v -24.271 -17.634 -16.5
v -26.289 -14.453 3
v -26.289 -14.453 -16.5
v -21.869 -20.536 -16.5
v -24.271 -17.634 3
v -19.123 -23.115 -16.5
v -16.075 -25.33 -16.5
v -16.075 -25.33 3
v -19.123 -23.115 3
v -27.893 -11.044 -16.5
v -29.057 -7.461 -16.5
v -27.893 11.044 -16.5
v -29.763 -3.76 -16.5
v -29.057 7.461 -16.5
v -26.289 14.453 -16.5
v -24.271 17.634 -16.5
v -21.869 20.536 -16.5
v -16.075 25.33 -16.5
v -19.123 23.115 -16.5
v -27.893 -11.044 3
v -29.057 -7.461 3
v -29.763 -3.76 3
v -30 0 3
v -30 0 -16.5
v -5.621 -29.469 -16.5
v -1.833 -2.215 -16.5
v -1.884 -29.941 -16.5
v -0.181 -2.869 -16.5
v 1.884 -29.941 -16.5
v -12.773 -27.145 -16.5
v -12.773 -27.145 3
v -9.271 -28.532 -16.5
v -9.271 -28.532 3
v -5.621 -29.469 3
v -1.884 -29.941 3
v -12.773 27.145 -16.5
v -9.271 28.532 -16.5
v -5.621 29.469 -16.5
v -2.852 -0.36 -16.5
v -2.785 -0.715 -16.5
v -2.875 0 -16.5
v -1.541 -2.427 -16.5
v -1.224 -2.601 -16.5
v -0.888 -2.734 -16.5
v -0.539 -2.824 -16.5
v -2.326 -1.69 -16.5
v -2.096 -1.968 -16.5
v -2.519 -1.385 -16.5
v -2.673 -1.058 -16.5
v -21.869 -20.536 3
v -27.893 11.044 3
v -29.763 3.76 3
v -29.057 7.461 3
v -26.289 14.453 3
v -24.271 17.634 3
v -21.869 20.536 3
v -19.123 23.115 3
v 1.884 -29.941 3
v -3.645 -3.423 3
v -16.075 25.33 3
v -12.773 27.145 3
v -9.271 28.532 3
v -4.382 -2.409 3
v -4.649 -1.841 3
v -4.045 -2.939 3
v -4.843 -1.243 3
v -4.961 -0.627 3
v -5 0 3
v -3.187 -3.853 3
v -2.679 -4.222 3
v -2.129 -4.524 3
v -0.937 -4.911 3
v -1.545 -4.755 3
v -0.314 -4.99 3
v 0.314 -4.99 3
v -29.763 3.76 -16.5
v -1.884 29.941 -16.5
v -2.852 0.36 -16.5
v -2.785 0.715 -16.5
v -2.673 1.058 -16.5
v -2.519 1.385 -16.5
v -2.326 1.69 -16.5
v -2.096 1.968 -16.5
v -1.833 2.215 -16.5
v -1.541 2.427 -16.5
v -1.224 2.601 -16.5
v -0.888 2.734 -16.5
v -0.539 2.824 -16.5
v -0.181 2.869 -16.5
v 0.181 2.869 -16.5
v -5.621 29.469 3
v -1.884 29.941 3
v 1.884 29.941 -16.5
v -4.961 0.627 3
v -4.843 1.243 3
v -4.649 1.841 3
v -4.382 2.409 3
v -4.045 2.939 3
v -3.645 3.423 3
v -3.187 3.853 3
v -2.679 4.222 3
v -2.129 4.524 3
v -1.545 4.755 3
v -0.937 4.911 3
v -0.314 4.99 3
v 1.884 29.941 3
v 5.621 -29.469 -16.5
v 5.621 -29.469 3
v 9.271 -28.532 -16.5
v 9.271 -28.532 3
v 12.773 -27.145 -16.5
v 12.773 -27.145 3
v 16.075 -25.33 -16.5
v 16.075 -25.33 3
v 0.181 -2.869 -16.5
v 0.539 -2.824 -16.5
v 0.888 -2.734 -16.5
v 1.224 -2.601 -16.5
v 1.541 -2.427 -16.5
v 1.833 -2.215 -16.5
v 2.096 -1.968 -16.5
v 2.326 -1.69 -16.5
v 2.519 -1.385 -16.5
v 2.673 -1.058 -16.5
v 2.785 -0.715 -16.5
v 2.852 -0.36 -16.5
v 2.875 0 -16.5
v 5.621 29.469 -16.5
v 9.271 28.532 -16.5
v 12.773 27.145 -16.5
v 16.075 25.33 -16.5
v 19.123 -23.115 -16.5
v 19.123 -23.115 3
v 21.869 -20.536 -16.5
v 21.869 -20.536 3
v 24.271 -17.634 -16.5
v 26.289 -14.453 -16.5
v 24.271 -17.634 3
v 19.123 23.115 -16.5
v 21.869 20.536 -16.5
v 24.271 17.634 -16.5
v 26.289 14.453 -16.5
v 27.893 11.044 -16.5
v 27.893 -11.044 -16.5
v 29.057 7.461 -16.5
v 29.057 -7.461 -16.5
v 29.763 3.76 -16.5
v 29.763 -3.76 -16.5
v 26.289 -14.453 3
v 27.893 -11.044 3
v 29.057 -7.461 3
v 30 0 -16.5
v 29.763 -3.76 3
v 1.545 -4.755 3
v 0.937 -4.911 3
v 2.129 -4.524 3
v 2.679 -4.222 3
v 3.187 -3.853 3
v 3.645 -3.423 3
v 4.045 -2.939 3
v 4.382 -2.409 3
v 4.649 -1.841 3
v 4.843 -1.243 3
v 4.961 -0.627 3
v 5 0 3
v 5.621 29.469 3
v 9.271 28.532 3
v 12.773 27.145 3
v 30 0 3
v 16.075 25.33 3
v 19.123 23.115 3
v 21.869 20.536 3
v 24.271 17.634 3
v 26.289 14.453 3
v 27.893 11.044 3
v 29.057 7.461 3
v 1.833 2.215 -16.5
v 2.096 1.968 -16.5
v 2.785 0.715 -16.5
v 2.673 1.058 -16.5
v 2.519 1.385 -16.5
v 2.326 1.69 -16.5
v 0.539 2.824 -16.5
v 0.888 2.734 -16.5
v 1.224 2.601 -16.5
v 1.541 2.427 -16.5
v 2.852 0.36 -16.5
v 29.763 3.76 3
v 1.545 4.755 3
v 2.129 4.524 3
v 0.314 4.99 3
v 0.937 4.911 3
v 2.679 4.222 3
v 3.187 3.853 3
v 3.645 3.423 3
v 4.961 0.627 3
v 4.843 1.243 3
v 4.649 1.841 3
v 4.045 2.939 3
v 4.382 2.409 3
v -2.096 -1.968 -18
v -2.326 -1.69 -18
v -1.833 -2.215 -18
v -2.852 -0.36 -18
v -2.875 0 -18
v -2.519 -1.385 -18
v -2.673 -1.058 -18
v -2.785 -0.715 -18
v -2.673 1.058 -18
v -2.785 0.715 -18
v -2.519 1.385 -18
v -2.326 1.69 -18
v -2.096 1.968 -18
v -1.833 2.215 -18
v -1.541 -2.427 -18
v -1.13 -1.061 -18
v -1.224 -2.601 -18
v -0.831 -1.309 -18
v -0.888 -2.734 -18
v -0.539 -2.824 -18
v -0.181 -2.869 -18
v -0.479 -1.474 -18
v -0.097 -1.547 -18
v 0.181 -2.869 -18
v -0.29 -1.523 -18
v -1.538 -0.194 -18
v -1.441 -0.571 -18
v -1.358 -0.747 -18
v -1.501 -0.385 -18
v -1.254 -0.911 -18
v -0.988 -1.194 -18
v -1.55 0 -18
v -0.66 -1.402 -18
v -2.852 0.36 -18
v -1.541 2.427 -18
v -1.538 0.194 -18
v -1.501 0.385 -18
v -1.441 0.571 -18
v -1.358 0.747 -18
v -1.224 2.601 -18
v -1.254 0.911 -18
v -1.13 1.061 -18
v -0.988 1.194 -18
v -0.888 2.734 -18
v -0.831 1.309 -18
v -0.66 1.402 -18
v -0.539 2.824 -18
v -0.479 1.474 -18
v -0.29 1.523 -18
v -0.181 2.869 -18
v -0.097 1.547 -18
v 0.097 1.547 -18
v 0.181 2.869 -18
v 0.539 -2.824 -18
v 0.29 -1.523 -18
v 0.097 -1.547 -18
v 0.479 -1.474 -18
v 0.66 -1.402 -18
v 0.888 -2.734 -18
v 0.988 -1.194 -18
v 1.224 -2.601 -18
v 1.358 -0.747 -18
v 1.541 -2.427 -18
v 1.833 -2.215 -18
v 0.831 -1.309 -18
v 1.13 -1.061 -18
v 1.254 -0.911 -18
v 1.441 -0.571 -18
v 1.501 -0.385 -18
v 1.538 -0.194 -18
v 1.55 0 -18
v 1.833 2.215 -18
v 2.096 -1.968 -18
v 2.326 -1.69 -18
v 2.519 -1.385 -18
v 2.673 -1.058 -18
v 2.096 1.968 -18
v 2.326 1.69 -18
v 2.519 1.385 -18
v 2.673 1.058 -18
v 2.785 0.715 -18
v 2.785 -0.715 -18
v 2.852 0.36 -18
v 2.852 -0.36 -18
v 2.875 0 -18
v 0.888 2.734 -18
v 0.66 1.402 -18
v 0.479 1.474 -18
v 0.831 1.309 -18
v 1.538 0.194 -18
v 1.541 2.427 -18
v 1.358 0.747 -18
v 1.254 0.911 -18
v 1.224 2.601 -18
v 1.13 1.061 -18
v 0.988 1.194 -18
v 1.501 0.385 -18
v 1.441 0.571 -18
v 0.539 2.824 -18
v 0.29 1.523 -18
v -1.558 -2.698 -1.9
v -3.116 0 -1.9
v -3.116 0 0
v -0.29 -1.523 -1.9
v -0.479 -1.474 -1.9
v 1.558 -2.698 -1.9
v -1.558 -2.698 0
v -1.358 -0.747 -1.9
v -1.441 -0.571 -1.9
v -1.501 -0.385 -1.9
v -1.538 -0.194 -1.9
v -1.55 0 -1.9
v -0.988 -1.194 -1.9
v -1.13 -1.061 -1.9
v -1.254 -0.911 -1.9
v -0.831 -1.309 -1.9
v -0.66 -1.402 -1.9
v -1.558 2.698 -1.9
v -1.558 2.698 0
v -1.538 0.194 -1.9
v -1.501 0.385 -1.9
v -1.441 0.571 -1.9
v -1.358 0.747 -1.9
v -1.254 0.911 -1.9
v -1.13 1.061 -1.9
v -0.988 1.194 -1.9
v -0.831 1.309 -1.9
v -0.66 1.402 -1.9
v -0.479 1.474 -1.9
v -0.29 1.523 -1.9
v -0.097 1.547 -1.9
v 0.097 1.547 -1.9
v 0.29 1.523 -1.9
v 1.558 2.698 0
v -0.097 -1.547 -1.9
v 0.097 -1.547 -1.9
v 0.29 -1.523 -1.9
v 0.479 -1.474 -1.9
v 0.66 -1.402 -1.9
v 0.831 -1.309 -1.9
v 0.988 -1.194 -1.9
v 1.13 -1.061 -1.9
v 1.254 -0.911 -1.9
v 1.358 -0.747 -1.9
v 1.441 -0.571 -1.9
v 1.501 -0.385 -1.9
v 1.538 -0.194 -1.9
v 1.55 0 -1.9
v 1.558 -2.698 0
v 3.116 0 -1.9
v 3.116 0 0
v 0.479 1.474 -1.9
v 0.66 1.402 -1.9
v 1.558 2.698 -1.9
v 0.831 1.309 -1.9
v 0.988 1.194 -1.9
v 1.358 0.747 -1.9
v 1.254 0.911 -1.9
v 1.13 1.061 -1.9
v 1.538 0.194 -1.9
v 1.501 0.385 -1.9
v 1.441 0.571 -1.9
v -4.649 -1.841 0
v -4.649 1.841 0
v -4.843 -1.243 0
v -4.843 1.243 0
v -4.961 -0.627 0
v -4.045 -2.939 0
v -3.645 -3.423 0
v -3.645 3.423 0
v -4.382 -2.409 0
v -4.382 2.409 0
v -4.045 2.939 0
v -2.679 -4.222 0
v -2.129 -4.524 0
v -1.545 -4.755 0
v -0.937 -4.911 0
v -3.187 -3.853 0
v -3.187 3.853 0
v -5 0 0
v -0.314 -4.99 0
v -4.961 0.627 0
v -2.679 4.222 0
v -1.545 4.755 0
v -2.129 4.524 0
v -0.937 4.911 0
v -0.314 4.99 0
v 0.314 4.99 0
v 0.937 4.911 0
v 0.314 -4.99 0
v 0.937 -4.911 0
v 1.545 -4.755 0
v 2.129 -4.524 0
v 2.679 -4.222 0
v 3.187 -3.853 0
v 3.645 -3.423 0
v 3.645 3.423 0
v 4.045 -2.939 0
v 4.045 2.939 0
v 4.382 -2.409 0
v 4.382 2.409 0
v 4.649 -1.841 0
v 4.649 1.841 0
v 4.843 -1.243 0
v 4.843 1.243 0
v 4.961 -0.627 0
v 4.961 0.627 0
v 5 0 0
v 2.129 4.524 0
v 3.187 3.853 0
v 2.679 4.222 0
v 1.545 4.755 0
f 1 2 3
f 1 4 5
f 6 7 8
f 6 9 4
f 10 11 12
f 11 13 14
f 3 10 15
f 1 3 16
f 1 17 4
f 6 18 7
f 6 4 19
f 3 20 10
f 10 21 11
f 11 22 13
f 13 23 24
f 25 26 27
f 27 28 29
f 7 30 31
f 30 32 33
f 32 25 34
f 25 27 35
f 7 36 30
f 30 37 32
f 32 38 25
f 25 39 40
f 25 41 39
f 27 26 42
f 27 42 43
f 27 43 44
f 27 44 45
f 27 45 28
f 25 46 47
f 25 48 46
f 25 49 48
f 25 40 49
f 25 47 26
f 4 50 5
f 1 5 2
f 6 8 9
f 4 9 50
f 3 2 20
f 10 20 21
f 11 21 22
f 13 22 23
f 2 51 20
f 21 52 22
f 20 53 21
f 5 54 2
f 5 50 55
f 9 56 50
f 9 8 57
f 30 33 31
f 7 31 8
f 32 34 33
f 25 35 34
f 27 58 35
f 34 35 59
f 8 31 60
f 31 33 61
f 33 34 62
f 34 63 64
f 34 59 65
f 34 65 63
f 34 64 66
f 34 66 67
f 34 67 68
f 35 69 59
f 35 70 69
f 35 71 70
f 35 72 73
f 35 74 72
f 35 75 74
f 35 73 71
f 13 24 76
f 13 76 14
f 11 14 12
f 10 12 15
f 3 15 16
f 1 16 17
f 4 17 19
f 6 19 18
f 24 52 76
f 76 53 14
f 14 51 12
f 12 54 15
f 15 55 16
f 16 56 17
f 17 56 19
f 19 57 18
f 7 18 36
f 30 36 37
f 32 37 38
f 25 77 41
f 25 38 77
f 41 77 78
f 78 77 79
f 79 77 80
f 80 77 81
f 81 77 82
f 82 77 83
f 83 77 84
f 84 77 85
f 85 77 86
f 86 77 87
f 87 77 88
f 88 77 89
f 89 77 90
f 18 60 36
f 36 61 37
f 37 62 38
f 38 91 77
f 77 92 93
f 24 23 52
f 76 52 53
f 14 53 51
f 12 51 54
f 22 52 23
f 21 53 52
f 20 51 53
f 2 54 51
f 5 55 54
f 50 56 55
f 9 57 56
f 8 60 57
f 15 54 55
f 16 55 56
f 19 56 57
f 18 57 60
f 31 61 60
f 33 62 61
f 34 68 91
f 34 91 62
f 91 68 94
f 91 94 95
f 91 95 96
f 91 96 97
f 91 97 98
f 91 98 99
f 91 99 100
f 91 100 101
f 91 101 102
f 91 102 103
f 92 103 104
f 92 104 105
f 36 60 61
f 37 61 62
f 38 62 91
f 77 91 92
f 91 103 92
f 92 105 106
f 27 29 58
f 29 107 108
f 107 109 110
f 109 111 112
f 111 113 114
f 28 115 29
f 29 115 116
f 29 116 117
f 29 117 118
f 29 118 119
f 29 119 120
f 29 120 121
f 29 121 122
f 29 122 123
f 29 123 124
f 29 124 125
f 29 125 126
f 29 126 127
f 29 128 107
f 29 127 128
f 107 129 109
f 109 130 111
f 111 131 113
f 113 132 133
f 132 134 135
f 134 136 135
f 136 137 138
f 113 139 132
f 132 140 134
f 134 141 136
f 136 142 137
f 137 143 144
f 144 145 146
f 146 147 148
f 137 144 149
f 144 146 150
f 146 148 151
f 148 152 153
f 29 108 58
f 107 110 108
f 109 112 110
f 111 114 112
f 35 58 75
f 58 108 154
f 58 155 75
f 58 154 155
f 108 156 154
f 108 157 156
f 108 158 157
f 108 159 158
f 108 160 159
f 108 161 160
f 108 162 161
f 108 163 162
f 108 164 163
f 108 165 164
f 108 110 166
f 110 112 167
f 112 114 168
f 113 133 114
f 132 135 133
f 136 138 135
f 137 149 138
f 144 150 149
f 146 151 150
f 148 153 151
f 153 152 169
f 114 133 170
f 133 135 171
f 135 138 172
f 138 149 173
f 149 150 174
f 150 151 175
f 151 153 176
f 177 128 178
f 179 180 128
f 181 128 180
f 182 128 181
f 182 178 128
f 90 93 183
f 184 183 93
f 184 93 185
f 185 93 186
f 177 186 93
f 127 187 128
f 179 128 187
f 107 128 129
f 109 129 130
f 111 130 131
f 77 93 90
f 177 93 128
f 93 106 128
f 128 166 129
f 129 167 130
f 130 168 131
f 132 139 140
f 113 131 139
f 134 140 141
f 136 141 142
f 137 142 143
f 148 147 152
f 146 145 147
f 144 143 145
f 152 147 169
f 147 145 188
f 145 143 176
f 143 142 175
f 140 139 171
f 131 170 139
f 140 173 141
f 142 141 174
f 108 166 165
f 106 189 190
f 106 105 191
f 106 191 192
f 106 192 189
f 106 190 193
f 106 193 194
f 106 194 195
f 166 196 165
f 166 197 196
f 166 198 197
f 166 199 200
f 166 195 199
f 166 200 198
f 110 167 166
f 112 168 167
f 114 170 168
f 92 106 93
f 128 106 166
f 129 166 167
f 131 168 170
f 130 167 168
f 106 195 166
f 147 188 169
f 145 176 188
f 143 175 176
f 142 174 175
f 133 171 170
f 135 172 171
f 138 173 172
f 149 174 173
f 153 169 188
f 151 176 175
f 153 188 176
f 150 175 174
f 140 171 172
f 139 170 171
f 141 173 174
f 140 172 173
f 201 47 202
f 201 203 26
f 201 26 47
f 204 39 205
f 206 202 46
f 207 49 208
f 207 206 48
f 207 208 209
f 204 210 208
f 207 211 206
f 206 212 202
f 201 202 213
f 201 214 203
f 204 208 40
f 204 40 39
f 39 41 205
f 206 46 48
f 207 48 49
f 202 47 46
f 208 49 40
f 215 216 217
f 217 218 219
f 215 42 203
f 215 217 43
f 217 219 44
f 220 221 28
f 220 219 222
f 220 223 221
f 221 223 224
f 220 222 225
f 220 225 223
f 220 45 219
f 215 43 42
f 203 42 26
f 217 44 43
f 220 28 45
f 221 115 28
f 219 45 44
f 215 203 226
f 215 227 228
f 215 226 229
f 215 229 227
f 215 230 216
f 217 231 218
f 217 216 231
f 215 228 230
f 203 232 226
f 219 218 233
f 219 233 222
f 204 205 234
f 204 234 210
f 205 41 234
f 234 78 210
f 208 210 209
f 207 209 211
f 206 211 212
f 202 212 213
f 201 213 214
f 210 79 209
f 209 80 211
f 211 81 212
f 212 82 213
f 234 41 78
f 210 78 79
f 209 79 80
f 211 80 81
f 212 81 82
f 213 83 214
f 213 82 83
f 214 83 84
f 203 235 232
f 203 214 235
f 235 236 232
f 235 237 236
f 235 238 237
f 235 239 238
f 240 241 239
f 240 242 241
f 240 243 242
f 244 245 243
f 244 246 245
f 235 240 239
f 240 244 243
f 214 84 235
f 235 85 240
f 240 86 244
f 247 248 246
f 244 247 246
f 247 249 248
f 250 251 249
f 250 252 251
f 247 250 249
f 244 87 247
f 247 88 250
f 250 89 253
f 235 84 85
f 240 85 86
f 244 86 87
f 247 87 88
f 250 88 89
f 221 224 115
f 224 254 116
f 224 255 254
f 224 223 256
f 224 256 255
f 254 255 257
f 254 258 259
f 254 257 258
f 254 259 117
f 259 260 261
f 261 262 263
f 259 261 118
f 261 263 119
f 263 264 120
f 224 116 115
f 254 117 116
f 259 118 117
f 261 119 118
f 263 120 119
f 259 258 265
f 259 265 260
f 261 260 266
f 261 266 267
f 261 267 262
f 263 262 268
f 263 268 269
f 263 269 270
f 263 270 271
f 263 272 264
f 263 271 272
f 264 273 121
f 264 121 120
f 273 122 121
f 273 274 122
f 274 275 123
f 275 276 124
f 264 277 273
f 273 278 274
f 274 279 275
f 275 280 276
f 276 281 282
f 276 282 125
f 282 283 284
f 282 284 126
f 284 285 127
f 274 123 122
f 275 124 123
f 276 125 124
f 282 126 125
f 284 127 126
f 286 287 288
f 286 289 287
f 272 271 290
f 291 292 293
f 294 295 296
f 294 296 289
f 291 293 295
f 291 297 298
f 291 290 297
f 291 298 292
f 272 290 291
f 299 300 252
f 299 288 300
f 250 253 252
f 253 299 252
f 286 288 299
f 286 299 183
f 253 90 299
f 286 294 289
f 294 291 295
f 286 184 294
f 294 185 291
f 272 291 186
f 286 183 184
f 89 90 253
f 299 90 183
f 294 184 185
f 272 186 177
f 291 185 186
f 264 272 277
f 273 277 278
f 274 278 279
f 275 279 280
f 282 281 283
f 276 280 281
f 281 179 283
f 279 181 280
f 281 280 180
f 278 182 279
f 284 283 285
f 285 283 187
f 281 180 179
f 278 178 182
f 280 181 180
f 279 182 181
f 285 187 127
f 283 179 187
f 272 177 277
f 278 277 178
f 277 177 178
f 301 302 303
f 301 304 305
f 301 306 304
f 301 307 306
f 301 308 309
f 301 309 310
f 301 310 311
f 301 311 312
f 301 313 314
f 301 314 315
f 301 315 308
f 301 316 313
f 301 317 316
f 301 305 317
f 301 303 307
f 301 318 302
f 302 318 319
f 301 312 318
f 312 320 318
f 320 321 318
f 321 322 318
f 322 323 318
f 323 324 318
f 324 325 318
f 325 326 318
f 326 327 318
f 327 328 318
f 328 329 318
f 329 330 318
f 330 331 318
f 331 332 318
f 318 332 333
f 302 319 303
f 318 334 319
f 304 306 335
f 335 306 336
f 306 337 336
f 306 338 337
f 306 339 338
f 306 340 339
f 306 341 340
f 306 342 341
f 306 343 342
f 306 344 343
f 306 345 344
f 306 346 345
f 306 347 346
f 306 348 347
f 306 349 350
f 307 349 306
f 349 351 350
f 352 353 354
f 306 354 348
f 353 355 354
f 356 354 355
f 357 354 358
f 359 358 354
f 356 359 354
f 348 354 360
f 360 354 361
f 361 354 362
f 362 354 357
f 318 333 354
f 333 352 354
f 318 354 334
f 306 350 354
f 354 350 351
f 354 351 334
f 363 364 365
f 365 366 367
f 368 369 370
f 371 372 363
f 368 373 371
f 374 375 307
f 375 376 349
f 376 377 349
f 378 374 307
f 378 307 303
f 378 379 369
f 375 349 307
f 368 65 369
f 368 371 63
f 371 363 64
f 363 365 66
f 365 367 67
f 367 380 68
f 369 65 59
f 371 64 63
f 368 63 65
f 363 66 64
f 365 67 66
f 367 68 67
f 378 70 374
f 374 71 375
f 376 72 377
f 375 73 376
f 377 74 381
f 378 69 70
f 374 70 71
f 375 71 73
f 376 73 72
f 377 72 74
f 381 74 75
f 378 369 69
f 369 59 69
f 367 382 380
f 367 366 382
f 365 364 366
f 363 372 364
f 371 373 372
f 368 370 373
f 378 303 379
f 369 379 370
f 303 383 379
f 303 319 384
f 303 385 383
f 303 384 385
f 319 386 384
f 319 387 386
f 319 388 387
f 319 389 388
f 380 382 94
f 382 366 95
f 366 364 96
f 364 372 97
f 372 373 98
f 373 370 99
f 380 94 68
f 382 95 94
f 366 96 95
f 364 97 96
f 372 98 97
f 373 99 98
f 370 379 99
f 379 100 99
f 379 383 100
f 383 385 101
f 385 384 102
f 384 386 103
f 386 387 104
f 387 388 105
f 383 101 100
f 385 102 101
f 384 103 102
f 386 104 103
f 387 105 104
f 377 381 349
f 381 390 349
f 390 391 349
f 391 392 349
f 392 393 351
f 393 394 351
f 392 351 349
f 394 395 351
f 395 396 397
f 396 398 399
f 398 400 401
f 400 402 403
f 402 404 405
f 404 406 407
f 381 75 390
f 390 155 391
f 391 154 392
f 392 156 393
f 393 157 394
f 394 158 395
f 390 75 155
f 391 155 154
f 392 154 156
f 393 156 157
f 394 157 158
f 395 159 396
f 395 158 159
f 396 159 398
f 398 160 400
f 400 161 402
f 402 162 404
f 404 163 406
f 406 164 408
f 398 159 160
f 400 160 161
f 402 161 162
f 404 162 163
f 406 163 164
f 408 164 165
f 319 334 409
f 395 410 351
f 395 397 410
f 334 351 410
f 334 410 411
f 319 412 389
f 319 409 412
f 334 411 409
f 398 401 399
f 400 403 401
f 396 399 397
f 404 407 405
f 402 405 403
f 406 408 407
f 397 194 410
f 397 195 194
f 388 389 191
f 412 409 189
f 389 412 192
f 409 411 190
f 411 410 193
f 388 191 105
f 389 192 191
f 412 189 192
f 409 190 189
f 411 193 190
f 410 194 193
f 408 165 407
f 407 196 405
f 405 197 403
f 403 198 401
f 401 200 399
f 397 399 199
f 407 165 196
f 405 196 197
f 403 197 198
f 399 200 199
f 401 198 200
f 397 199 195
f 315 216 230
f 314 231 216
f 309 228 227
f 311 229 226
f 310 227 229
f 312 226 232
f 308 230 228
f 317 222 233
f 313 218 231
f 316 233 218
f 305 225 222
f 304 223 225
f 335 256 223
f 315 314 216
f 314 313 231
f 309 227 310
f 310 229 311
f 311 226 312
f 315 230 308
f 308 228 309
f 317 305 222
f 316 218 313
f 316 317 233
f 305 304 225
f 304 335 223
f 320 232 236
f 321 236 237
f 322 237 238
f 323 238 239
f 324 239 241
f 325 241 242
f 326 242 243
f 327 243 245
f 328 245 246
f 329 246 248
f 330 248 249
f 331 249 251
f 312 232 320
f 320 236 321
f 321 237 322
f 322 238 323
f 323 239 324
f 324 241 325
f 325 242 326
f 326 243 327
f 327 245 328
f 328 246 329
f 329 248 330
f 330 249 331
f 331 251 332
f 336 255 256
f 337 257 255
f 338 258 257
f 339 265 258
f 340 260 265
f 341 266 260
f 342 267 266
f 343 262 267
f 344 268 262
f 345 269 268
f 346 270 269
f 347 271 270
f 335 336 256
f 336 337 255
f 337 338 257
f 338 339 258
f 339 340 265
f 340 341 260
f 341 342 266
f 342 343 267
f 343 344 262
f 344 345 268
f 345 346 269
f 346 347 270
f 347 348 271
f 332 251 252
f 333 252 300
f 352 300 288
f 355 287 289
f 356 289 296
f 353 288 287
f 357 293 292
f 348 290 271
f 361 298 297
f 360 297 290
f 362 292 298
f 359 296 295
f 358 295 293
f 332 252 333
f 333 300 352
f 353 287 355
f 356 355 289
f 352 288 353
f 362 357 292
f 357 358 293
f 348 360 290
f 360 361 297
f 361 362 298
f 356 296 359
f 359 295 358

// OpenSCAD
$fn = 50;

difference() {
	union() {
		translate(v = [0, 0, -16.5]) {
			cylinder(h = 19.5, r = 30.0);
		}
		#translate(v = [0, 0, -18.0]) {
			cylinder(h = 18, r = 2.875);
		}
	}
	union() {
		translate(v = [0, 0, 0]) {
			rotate(a = [0, 0, 0]) {
				difference() {
					union() {
						translate(v = [0, 0, -1.9]) {
							linear_extrude(height = 1.9) {
								polygon(points = [[3.1158, 0.0], [1.5579000000000005, 2.698361953111554], [-1.5578999999999994, 2.6983619531115544], [-3.1158, 3.815754496783323e-16], [-1.5579000000000014, -2.6983619531115535], [1.557899999999998, -2.6983619531115552]]);
							}
						}
					}
					union();
				}
			}
		}
		#cylinder(h = 3, r = 5.0);
		#translate(v = [0, 0, -100.0]) {
			cylinder(h = 200, r = 1.55);
		}
	}
}
